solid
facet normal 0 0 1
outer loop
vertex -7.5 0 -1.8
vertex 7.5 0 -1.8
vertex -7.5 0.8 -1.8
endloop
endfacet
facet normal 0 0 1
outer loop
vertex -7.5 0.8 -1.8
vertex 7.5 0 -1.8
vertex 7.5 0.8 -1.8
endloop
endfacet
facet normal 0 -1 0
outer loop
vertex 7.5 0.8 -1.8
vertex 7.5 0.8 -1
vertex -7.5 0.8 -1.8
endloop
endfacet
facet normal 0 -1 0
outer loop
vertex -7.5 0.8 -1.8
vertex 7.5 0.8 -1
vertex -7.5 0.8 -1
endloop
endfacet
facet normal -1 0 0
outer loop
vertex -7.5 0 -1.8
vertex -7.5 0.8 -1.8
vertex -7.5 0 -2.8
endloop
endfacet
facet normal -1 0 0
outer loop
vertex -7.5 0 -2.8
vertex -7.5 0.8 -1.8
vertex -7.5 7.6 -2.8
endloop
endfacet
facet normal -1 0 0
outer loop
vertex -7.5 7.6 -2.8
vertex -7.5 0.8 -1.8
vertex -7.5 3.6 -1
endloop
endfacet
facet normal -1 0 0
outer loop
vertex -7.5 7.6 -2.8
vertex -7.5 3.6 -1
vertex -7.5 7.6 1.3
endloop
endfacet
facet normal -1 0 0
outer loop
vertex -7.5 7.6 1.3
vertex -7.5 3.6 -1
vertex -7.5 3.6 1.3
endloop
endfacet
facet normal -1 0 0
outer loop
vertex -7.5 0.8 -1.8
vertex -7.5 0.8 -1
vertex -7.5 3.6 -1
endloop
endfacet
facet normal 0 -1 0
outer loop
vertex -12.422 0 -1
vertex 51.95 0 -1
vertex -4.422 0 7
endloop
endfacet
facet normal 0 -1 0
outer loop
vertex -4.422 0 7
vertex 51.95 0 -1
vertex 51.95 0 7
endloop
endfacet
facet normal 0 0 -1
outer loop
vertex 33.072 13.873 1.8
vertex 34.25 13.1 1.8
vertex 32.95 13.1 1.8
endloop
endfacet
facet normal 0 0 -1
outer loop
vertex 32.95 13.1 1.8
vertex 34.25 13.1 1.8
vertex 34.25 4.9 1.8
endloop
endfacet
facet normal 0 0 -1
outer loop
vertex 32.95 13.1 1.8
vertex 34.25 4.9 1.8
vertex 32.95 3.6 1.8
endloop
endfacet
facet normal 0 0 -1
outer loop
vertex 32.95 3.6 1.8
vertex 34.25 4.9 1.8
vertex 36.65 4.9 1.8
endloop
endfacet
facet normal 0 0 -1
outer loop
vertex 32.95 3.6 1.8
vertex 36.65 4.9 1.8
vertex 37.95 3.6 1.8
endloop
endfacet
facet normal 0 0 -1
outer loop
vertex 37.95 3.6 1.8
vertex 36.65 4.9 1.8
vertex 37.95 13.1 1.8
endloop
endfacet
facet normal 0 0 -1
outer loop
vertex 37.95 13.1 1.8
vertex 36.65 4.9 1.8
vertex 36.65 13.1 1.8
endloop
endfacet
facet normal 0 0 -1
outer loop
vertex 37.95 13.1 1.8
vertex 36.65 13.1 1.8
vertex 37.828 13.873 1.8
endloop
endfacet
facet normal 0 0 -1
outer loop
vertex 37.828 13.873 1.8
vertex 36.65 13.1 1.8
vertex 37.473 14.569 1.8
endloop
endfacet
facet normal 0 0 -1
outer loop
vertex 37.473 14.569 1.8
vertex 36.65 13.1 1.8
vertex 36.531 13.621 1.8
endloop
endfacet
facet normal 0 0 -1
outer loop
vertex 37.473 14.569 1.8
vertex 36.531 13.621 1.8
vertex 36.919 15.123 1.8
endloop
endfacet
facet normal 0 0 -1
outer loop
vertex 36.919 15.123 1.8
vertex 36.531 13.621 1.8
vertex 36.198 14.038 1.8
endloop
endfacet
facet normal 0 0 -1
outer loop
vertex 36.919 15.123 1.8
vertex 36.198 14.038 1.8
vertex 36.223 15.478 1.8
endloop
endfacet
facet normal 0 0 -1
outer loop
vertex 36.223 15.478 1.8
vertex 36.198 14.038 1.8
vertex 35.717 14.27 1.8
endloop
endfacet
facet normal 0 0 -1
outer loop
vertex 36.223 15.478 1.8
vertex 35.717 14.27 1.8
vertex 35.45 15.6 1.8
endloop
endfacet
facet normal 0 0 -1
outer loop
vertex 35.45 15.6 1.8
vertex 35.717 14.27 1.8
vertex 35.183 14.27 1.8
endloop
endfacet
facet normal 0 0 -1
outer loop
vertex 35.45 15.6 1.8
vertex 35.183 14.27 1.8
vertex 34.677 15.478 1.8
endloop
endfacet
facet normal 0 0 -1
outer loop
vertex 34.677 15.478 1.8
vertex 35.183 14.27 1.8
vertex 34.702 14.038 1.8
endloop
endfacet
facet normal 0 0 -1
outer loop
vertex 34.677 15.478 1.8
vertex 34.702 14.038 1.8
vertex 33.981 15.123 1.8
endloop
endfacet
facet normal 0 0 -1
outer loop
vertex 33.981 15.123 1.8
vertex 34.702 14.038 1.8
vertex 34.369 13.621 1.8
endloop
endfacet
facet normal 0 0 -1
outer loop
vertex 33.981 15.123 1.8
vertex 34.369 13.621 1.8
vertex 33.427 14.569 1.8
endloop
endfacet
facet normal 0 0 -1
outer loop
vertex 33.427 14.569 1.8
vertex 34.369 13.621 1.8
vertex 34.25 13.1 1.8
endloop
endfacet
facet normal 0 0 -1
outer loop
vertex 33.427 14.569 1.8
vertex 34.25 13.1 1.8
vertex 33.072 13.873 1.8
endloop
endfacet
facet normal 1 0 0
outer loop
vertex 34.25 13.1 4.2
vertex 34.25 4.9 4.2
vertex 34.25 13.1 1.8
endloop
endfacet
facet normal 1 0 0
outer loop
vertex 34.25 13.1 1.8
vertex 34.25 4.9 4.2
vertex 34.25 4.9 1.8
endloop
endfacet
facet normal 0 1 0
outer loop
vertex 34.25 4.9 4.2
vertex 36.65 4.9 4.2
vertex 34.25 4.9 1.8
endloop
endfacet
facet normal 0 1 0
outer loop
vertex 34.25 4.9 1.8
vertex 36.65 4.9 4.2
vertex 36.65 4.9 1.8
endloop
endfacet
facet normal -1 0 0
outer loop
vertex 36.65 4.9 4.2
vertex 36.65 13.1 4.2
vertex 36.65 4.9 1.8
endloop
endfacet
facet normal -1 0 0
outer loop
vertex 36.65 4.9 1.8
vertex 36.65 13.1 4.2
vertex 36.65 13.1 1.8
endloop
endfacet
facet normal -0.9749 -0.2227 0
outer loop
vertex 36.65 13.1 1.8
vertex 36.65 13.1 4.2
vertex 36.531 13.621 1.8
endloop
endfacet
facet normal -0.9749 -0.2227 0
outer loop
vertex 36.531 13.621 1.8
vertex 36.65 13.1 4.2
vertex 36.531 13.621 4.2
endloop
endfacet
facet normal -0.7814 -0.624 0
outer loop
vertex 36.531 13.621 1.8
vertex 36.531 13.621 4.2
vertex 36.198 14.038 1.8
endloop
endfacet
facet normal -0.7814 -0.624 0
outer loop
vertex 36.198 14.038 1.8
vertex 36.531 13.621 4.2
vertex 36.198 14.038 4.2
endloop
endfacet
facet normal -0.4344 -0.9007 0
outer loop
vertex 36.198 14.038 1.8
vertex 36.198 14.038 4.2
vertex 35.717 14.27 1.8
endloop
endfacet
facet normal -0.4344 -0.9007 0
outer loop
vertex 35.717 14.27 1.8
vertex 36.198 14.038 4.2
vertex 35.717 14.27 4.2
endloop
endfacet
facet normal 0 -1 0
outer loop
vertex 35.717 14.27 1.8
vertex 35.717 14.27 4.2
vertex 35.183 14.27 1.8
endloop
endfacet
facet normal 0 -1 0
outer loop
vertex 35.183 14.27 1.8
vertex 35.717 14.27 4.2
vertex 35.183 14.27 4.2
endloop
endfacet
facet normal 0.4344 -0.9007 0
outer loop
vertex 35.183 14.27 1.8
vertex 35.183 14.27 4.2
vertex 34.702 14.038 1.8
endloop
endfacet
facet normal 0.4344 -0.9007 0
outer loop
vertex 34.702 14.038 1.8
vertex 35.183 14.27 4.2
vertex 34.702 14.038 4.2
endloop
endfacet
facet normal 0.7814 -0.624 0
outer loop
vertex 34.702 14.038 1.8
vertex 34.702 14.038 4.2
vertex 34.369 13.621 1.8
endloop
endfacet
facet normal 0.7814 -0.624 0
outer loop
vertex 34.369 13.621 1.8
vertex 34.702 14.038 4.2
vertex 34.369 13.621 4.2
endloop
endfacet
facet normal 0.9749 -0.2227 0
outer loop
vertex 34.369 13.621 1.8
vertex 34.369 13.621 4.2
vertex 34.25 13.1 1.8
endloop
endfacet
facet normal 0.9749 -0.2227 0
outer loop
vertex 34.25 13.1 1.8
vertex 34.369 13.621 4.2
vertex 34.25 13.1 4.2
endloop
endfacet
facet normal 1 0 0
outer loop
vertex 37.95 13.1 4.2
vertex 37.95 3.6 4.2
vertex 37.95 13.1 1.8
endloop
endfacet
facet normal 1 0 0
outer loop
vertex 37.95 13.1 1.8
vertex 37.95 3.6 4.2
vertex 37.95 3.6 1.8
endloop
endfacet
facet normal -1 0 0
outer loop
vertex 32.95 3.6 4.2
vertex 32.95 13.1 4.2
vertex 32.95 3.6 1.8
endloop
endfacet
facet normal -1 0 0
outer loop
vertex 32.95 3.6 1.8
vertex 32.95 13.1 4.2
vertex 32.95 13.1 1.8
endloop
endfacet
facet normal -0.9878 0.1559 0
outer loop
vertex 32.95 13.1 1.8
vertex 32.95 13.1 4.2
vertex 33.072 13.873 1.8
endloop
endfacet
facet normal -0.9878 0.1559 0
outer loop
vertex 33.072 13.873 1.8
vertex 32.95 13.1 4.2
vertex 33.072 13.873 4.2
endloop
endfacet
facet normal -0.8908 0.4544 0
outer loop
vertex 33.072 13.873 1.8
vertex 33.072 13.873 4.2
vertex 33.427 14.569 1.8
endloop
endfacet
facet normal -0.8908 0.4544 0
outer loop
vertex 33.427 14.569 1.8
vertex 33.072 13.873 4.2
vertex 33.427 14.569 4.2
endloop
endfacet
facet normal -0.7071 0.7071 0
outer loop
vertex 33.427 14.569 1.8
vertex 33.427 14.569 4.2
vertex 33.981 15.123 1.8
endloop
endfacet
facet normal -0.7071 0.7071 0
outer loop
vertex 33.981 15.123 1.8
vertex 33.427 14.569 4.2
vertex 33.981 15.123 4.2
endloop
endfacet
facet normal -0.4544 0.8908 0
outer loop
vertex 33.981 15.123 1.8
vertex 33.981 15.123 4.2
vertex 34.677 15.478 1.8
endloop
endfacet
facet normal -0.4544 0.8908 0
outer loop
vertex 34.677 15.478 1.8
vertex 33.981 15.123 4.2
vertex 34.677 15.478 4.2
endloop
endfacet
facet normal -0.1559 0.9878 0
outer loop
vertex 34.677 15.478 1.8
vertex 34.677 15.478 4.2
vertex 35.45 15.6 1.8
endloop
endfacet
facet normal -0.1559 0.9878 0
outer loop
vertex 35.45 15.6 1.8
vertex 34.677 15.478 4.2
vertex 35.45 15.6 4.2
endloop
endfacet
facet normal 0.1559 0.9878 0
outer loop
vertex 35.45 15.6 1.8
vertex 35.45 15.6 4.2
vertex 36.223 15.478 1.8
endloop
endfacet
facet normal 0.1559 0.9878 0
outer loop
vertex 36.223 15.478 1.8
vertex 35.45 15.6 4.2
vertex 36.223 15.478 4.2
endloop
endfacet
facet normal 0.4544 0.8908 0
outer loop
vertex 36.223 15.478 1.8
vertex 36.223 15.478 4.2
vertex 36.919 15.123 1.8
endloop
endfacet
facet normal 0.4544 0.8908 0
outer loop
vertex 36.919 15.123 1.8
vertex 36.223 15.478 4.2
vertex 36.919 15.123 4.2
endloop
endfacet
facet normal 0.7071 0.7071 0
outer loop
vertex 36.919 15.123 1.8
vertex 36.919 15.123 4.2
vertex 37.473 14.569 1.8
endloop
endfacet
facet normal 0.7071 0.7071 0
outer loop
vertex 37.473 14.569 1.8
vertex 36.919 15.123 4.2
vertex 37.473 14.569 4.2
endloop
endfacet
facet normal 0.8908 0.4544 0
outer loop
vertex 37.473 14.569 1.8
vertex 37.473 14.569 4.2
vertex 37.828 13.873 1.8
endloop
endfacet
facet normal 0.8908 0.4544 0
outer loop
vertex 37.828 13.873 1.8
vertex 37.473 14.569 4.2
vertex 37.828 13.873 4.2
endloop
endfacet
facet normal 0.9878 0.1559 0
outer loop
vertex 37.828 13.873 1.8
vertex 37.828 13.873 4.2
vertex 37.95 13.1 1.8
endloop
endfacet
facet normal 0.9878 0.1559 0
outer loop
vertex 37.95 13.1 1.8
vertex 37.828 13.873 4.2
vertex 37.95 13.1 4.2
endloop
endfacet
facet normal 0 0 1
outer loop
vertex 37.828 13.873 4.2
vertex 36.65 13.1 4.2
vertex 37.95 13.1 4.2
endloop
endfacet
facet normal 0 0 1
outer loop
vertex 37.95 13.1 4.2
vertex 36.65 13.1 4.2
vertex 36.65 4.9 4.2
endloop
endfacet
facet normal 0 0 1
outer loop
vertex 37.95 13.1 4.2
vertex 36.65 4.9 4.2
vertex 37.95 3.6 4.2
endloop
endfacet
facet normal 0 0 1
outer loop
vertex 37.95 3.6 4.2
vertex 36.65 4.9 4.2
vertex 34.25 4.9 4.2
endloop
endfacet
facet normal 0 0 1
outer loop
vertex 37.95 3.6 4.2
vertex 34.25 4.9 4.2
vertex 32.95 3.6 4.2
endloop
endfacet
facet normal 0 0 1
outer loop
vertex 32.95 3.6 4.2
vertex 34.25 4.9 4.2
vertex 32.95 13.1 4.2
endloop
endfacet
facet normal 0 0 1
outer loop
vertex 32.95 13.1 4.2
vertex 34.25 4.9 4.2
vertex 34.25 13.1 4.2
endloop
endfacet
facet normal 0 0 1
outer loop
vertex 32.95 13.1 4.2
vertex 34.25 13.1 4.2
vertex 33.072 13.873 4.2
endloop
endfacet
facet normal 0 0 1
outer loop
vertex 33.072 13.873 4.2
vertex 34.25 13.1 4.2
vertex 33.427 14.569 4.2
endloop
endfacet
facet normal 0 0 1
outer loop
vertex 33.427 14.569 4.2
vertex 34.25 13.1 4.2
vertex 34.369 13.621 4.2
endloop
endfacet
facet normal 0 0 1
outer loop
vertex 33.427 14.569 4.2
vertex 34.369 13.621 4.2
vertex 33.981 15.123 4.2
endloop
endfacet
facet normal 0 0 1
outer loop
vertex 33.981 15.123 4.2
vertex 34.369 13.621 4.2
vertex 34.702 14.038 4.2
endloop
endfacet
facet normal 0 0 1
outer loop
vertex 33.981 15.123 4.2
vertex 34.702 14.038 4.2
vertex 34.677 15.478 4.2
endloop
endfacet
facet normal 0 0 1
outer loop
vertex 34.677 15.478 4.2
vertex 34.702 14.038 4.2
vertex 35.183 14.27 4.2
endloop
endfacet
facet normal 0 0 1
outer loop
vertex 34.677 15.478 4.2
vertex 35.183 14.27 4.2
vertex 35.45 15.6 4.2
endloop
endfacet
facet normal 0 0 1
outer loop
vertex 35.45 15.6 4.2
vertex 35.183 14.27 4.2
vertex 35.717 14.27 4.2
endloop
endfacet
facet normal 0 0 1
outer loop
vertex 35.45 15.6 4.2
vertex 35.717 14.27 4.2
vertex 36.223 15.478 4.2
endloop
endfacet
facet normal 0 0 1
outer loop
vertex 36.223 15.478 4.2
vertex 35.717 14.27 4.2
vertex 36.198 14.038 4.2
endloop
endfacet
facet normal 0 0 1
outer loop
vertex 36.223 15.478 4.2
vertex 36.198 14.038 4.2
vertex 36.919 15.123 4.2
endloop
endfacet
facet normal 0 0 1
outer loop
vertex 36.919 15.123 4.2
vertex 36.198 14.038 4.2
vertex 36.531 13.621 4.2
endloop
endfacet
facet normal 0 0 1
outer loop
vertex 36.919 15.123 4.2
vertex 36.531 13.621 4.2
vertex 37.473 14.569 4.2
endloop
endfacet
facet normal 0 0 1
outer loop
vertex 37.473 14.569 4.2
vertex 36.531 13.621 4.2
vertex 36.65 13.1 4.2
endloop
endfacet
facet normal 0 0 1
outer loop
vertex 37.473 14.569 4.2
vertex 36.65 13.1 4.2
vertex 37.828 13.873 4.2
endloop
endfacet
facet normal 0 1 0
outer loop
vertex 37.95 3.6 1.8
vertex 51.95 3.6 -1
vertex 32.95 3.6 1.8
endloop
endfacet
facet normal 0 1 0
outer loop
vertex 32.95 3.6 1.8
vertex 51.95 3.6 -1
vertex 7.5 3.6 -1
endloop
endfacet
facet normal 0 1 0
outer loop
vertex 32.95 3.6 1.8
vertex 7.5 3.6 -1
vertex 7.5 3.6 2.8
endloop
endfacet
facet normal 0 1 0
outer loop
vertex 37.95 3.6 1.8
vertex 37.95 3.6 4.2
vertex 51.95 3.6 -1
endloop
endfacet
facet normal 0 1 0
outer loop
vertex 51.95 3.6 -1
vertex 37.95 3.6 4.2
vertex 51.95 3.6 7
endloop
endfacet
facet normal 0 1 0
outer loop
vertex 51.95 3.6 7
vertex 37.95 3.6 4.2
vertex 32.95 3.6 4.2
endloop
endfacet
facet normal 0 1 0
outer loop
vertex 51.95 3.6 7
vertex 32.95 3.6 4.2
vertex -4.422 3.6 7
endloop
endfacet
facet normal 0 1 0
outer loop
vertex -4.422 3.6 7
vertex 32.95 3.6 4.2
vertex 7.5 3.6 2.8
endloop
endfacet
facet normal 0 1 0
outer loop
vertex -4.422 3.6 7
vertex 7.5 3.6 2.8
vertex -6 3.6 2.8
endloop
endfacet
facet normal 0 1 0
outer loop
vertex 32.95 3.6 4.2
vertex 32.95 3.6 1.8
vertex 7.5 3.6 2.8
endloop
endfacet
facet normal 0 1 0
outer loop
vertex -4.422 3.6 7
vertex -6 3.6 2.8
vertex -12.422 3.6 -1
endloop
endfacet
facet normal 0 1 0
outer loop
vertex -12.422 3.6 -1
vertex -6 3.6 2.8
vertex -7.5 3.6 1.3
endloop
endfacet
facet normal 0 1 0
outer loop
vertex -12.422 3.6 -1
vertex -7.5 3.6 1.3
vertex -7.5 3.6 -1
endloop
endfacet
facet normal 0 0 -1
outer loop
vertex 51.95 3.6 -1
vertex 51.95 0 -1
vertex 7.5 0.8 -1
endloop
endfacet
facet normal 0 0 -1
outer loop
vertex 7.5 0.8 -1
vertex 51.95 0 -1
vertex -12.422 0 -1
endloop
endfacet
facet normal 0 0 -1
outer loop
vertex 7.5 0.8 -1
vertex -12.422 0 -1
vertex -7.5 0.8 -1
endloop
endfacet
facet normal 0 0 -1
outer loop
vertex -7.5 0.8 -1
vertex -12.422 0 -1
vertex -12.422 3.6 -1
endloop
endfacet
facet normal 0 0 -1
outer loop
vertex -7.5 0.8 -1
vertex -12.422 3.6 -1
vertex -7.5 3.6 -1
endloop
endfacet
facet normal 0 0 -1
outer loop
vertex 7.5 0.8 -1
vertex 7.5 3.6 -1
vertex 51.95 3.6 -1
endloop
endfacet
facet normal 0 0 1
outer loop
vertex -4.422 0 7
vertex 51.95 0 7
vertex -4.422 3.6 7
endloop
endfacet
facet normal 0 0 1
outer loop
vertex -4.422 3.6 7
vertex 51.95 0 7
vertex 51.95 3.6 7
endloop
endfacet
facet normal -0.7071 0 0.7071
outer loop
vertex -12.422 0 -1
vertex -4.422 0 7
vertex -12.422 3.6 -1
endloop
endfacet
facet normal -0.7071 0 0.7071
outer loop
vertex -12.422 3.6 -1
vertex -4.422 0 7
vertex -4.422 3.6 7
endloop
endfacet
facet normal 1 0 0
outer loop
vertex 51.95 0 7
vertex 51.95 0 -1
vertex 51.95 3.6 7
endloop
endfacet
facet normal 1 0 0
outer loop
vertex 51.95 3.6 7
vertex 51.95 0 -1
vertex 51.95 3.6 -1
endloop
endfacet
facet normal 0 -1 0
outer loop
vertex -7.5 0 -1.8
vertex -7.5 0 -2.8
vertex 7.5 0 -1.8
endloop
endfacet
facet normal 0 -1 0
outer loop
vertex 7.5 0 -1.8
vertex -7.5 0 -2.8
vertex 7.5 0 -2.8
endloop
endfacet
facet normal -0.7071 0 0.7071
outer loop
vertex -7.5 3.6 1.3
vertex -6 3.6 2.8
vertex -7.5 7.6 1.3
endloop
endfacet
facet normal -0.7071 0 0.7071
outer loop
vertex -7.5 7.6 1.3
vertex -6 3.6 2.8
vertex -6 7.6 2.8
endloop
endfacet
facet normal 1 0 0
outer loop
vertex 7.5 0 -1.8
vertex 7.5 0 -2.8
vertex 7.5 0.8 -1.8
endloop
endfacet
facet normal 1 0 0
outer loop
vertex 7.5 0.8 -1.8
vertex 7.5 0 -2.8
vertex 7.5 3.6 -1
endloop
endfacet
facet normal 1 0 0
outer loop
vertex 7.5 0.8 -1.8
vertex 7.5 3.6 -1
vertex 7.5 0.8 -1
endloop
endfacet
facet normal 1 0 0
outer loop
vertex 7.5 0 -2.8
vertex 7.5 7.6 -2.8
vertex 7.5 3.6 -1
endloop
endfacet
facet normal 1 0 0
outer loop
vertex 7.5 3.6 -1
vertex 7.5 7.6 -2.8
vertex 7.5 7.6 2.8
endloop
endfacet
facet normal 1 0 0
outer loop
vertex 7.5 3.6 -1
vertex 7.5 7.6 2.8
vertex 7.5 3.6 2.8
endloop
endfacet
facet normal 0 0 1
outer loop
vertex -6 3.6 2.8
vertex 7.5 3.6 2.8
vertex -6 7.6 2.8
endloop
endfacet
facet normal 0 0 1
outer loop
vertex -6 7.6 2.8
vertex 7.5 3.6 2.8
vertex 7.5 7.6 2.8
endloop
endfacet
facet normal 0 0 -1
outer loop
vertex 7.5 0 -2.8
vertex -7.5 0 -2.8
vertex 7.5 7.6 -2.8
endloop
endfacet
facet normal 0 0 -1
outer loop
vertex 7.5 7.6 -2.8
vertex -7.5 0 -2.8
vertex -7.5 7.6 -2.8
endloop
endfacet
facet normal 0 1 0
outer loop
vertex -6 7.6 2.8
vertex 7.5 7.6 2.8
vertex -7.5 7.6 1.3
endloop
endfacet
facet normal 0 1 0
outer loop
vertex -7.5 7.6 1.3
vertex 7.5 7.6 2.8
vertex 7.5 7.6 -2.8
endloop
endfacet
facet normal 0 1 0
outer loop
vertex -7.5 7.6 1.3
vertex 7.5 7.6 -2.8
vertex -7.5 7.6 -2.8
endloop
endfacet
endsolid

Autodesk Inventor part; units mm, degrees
ref_plane "YZ Plane" through (0, 0, 0) normal (1, 0, 0) x (0, 1, 0)
ref_plane "XZ Plane" through (0, 0, 0) normal (0, 1, 0) x (-1, 0, 0)
ref_plane "XY Plane" through (0, 0, 0) normal (0, 0, 1) x (1, 0, 0)
sketch "Эскиз1" plane through (0, 0, 0) normal (0, 1, 0) x (-1, 0, 0)
  line L0 (-7.5, 2.8) -> (7.5, 2.8)
  line L1 (7.5, 2.8) -> (7.5, -2.8)
  line L2 (7.5, -2.8) -> (-7.5, -2.8)
  line L3 (-7.5, -2.8) -> (-7.5, 2.8)
  line L4 (-7.5, 2.8) -> (7.5, -2.8) construction
  line L5 (7.5, 2.8) -> (-7.5, -2.8) construction
  point P0 (0, 0)
  dimension "d0" = 15
  dimension "d1" = 5.6
extrude "Выдавливание1" add sketch "Эскиз1" along normal blind 7.6
chamfer "Фаска1" distance 1.5 angle 45 1 edges at (-7.5, 3.8, 2.8)
sketch "Эскиз2" plane through (0, 0, 0) normal (0, -1, 0) x (1, 0, 0)
  line L0 (112.65, -2) -> (112.65, 2) projected
  line L1 (112.65, -2) -> (118.15, -2) projected
  line L2 (118.15, -2) -> (118.15, -0.4142) projected
  line L3 (118.15, -0.4142) -> (109.7358, 8) projected
  line L4 (109.7358, 8) -> (-4.8358, 8) projected
  line L5 (-4.8358, 8) -> (-13.25, -0.4142) projected
  line L6 (-13.25, -0.4142) -> (-13.25, -2) projected
  line L7 (-13.25, -2) -> (-7.75, -2) projected
  line L8 (-7.75, 2) -> (-7.75, -2) projected
  line L9 (-6.75, 3) -> (-7.75, 2) projected
  line L10 (7.75, 3) -> (-6.75, 3) projected
  line L11 (7.75, -2) -> (7.75, 3) projected
  line L12 (7.75, -2) -> (97.15, -2) projected
  line L13 (97.15, 3) -> (97.15, -2) projected
  line L14 (111.65, 3) -> (97.15, 3) projected
  line L15 (112.65, 2) -> (111.65, 3) projected
  line L16 (52.45, 8) -> (52.45, -2) construction
  line L17 (-9.25, -1) -> (-12.4216, -1)
  line L18 (-12.4216, -1) -> (-4.4216, 7)
  line L19 (-4.4216, 7) -> (109.3216, 7)
  line L20 (109.3216, 7) -> (117.3216, -1)
  line L21 (-9.25, -1) -> (117.3216, -1)
  line L22 (52.45, 7) -> (51.95, 7) construction
  line L23 (51.95, 7) -> (51.95, -1)
  line L24 (51.95, -1) -> (52.45, -1) construction
  line L25 (52.45, -1) -> (52.45, 7) construction
  line L26 (72.15, 1.6) -> (66.75, 1.6) projected
  line L27 (66.75, 1.6) -> (66.75, 4.4) projected
  line L28 (66.75, 4.4) -> (72.15, 4.4) projected
  line L29 (72.15, 4.4) -> (72.15, 1.6) projected
  line L30 (38.15, 1.6) -> (32.75, 1.6) projected
  line L31 (32.75, 1.6) -> (32.75, 4.4) projected
  line L32 (32.75, 4.4) -> (38.15, 4.4) projected
  line L33 (38.15, 4.4) -> (38.15, 1.6) projected
  point P0 (0, 0)
  point P1 (51.95, 7)
  dimension "d7" = 1
  dimension "d8" = 0.5
extrude "Выдавливание2" add sketch "Эскиз2" against normal blind 3.6 contours L21 L11 L10 L9 L8 L17 L18 L19 L23 | L21 L8 L9 L10 L11 | L30 L31 L32 L33
ref_plane "РабПлоскость1" through (-4.4216, 0, 3) normal (0, 0, 1) x (1, 0, 0)
sketch "Эскиз4" plane through (-4.4216, 0, 3) normal (0, 0, 1) x (1, 0, 0)
  line L0 (56.3716, 0) -> (56.3716, 3.6) construction
  line L1 (56.3716, 3.6) -> (42.3716, 3.6) construction
  line L2 (0, 3.6) -> (56.3716, 3.6) construction
  line L3 (42.3716, 3.6) -> (37.3716, 3.6)
  line L4 (37.3716, 3.6) -> (37.3716, 13.1)
  line L5 (39.8716, 15.6) -> (39.8716, 15.6)
  line L6 (42.3716, 13.1) -> (42.3716, 3.6)
  arc A0 (39.8716, 15.6) -> (37.3716, 13.1) centre (39.8716, 13.1) ccw
  arc A1 (42.3716, 13.1) -> (39.8716, 15.6) centre (39.8716, 13.1) ccw
  line L7 (39.8716, 14.3) -> (39.8716, 14.3)
  arc A2 (39.8716, 14.3) -> (38.6716, 13.1) centre (39.8716, 13.1) ccw
  line L8 (38.6716, 13.1) -> (38.6716, 4.9)
  line L9 (38.6716, 4.9) -> (41.0716, 4.9)
  line L10 (41.0716, 4.9) -> (41.0716, 13.1)
  arc A3 (41.0716, 13.1) -> (39.8716, 14.3) centre (39.8716, 13.1) ccw
  point P0 (4.4216, 0)
  point P1 (37.3716, 15.6)
  point P2 (42.3716, 15.6)
  dimension "d16" = 14
  dimension "d17" = 5
  dimension "d18" = 12
  dimension "d19" = 2.5
  dimension "d20" = 1.3
extrude "Выдавливание3" add sketch "Эскиз4" along normal mid plane 2.4
sketch "Эскиз6" plane through (0, 0, 0) normal (0, -1, 0) x (1, 0, 0)
  line L0 (7.5, -2.8) -> (-7.5, -2.8) construction
  line L1 (7.5, 2.8) -> (7.5, -2.8) projected
  line L2 (-7.5, -2.8) -> (7.5, -2.8) construction
  line L3 (7.5, -2.8) -> (7.5, -1.8) construction
  line L4 (7.5, -1.8) -> (-7.5, -1.8) construction
  line L5 (-7.5, -1.8) -> (-7.5, -2.8) construction
  line L6 (7.5, -1) -> (51.95, -1) projected
  line L7 (-7.5, -1.8) -> (7.5, -1.8)
  line L8 (7.5, -1.8) -> (7.5, -1)
  line L9 (7.5, -1) -> (-7.5, -1)
  line L10 (-7.5, -1) -> (-7.5, -1.8)
  point P0 (0, 0)
  dimension "d23" = 1
  dimension "d24" = 15
extrude "Выдавливание4" cut sketch "Эскиз6" against normal blind 0.8
properties part number "microswitch_cap"
